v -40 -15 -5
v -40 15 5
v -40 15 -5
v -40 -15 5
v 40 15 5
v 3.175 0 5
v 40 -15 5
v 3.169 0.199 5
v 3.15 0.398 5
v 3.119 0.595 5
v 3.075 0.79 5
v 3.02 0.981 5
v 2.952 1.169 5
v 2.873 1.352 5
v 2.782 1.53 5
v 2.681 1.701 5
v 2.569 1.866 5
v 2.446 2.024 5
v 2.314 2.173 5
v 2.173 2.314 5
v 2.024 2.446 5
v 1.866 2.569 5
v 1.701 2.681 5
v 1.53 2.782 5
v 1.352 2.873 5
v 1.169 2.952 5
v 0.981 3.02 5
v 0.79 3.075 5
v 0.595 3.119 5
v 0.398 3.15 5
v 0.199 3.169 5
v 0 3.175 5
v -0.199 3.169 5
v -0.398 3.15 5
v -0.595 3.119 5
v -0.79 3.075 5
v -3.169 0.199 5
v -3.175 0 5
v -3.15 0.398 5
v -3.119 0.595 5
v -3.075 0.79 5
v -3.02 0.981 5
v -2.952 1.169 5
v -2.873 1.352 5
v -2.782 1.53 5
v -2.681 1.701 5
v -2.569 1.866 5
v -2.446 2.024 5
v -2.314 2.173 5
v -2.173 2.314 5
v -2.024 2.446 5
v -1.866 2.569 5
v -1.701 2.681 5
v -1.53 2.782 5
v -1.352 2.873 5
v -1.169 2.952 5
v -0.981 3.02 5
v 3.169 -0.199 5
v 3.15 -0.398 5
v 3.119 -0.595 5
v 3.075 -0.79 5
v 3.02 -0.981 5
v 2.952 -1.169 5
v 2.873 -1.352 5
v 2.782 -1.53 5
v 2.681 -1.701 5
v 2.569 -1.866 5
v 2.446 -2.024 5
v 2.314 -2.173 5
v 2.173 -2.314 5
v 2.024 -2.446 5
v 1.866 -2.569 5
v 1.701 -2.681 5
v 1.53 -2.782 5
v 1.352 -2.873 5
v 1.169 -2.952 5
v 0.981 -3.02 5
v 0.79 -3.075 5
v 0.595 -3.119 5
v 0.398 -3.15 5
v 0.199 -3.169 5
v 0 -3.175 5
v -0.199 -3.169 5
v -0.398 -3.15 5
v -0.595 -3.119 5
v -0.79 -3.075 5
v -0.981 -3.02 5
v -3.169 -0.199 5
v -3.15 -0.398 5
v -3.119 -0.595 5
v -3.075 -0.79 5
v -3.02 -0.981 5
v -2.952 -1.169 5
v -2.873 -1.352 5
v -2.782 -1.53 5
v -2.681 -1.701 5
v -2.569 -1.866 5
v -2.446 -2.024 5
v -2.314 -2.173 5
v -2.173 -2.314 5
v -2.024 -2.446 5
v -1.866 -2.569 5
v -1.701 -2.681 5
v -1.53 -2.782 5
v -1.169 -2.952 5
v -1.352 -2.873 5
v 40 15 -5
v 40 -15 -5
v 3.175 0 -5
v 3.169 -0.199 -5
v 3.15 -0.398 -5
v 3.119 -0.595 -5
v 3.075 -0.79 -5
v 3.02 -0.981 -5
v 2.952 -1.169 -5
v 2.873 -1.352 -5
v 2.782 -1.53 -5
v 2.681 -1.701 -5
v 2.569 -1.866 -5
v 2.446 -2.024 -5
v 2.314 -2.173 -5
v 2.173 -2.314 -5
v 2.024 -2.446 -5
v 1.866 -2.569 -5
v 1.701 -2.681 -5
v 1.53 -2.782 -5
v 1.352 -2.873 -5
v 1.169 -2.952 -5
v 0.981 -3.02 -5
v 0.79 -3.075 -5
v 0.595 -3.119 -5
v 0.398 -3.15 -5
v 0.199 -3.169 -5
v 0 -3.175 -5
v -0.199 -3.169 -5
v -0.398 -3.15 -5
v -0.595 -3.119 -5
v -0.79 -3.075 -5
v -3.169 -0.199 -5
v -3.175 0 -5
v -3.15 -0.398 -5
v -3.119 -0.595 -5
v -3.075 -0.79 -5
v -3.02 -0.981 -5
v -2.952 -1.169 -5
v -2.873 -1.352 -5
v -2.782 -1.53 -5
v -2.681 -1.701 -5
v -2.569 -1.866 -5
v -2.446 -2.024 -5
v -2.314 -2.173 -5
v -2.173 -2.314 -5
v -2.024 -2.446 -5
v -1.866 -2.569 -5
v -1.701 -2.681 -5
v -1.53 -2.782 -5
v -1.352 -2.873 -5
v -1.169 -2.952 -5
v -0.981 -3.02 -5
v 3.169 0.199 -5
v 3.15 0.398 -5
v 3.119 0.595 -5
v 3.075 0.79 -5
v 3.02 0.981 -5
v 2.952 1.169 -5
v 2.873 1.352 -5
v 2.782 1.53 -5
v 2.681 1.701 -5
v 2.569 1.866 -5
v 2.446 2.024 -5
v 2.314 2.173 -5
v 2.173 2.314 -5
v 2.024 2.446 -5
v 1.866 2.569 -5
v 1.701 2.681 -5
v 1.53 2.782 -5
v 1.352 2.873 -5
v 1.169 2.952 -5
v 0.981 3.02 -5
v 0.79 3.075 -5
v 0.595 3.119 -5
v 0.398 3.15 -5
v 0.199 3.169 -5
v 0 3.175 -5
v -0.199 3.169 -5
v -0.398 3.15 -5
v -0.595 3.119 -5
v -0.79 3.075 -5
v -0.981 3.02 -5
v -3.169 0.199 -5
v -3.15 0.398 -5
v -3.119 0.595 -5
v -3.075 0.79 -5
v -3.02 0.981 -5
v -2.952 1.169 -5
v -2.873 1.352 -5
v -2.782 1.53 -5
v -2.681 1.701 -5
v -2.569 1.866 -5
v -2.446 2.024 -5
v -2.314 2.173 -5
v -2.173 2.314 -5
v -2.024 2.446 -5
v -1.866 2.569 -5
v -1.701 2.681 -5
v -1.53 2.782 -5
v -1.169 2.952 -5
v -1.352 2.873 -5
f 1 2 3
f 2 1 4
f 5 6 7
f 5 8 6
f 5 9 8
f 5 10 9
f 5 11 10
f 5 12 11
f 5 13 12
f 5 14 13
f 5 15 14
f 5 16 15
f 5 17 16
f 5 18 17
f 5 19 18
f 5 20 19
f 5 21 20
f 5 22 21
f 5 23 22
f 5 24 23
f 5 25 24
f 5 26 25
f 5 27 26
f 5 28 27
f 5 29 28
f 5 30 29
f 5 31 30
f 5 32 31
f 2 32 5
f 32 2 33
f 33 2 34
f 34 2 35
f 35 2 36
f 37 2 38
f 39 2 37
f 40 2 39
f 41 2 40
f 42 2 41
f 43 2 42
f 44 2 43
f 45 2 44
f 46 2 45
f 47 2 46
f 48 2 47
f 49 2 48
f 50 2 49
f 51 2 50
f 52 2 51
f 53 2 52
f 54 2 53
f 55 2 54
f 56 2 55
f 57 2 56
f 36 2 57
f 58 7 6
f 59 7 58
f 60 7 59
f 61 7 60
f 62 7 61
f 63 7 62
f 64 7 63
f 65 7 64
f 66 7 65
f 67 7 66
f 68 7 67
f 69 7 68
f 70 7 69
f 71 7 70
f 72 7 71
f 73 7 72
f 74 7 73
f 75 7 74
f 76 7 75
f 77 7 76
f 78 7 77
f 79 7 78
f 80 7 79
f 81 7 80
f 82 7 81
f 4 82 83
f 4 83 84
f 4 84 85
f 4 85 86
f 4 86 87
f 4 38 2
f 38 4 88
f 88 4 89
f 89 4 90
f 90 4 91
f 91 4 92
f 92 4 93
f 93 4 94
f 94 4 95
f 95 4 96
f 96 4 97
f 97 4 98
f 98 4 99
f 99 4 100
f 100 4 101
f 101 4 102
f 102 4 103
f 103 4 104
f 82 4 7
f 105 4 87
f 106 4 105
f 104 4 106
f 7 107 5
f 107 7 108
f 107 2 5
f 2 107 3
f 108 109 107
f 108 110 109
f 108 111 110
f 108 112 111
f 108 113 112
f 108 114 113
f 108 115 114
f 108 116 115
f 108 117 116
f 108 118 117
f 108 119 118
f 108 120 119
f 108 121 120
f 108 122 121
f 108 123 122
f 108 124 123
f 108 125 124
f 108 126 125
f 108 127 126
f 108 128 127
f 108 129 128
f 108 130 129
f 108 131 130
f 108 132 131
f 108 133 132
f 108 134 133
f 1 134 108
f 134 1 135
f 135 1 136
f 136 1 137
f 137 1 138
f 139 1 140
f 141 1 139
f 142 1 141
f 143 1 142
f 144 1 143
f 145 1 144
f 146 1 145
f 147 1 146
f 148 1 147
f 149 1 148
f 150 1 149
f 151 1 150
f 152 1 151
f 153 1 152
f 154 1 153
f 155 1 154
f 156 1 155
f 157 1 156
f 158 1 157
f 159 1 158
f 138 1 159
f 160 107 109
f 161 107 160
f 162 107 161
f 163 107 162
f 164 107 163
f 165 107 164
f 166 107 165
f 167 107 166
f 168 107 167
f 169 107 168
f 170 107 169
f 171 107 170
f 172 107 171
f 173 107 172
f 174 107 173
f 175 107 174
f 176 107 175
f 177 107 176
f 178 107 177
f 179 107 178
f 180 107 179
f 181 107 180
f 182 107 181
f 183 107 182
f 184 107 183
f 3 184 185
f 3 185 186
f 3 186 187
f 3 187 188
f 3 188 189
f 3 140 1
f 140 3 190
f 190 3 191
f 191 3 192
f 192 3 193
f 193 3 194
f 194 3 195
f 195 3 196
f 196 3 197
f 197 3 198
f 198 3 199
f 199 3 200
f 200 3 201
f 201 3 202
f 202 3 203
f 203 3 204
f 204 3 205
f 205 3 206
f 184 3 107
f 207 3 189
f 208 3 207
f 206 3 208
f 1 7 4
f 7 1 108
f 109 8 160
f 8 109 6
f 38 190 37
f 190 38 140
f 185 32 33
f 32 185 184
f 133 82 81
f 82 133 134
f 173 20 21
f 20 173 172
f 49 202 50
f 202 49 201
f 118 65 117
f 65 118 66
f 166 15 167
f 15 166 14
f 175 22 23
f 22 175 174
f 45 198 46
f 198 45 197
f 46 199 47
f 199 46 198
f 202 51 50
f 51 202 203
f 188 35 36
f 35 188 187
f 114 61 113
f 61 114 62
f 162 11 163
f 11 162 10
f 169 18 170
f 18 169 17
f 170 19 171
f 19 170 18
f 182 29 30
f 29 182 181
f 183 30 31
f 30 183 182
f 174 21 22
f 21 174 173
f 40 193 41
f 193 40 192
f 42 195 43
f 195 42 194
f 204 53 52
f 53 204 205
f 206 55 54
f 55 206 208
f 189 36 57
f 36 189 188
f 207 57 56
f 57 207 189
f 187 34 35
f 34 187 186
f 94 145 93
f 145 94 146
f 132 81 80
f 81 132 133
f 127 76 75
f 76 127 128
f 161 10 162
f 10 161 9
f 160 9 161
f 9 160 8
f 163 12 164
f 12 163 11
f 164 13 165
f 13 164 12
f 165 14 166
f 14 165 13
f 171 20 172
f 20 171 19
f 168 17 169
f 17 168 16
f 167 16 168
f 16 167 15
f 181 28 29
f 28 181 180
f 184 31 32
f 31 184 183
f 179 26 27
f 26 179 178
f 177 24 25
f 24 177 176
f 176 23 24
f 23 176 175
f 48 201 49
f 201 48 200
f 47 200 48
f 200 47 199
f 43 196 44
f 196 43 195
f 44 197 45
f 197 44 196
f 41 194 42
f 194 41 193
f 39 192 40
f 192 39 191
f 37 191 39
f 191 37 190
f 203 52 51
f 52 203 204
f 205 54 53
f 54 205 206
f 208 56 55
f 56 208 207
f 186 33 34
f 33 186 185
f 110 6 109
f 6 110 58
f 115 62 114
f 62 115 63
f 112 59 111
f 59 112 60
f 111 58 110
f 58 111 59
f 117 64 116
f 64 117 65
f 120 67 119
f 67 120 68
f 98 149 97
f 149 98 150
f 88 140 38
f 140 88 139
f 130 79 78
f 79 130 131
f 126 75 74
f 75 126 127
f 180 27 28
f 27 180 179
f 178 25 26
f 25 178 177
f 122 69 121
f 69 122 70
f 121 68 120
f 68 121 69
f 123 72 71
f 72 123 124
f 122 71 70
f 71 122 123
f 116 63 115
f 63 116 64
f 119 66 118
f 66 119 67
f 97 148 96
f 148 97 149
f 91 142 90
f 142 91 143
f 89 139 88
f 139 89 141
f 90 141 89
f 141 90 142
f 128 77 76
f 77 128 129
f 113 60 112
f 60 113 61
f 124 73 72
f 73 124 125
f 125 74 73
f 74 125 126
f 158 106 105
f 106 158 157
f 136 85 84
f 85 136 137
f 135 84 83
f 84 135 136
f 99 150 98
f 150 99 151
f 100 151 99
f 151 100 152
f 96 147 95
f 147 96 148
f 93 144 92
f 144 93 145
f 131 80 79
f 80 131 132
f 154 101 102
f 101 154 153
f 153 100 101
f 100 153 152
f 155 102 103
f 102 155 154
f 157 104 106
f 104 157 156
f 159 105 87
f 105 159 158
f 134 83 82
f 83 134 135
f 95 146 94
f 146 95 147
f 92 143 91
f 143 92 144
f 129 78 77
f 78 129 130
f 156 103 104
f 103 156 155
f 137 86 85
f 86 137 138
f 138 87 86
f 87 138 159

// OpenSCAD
// Testing device
$fn=100;
difference(){
    cube([80,30,10],center=true);
    translate([0,0,-10])cylinder(r=6.35/2,h=20);
}
